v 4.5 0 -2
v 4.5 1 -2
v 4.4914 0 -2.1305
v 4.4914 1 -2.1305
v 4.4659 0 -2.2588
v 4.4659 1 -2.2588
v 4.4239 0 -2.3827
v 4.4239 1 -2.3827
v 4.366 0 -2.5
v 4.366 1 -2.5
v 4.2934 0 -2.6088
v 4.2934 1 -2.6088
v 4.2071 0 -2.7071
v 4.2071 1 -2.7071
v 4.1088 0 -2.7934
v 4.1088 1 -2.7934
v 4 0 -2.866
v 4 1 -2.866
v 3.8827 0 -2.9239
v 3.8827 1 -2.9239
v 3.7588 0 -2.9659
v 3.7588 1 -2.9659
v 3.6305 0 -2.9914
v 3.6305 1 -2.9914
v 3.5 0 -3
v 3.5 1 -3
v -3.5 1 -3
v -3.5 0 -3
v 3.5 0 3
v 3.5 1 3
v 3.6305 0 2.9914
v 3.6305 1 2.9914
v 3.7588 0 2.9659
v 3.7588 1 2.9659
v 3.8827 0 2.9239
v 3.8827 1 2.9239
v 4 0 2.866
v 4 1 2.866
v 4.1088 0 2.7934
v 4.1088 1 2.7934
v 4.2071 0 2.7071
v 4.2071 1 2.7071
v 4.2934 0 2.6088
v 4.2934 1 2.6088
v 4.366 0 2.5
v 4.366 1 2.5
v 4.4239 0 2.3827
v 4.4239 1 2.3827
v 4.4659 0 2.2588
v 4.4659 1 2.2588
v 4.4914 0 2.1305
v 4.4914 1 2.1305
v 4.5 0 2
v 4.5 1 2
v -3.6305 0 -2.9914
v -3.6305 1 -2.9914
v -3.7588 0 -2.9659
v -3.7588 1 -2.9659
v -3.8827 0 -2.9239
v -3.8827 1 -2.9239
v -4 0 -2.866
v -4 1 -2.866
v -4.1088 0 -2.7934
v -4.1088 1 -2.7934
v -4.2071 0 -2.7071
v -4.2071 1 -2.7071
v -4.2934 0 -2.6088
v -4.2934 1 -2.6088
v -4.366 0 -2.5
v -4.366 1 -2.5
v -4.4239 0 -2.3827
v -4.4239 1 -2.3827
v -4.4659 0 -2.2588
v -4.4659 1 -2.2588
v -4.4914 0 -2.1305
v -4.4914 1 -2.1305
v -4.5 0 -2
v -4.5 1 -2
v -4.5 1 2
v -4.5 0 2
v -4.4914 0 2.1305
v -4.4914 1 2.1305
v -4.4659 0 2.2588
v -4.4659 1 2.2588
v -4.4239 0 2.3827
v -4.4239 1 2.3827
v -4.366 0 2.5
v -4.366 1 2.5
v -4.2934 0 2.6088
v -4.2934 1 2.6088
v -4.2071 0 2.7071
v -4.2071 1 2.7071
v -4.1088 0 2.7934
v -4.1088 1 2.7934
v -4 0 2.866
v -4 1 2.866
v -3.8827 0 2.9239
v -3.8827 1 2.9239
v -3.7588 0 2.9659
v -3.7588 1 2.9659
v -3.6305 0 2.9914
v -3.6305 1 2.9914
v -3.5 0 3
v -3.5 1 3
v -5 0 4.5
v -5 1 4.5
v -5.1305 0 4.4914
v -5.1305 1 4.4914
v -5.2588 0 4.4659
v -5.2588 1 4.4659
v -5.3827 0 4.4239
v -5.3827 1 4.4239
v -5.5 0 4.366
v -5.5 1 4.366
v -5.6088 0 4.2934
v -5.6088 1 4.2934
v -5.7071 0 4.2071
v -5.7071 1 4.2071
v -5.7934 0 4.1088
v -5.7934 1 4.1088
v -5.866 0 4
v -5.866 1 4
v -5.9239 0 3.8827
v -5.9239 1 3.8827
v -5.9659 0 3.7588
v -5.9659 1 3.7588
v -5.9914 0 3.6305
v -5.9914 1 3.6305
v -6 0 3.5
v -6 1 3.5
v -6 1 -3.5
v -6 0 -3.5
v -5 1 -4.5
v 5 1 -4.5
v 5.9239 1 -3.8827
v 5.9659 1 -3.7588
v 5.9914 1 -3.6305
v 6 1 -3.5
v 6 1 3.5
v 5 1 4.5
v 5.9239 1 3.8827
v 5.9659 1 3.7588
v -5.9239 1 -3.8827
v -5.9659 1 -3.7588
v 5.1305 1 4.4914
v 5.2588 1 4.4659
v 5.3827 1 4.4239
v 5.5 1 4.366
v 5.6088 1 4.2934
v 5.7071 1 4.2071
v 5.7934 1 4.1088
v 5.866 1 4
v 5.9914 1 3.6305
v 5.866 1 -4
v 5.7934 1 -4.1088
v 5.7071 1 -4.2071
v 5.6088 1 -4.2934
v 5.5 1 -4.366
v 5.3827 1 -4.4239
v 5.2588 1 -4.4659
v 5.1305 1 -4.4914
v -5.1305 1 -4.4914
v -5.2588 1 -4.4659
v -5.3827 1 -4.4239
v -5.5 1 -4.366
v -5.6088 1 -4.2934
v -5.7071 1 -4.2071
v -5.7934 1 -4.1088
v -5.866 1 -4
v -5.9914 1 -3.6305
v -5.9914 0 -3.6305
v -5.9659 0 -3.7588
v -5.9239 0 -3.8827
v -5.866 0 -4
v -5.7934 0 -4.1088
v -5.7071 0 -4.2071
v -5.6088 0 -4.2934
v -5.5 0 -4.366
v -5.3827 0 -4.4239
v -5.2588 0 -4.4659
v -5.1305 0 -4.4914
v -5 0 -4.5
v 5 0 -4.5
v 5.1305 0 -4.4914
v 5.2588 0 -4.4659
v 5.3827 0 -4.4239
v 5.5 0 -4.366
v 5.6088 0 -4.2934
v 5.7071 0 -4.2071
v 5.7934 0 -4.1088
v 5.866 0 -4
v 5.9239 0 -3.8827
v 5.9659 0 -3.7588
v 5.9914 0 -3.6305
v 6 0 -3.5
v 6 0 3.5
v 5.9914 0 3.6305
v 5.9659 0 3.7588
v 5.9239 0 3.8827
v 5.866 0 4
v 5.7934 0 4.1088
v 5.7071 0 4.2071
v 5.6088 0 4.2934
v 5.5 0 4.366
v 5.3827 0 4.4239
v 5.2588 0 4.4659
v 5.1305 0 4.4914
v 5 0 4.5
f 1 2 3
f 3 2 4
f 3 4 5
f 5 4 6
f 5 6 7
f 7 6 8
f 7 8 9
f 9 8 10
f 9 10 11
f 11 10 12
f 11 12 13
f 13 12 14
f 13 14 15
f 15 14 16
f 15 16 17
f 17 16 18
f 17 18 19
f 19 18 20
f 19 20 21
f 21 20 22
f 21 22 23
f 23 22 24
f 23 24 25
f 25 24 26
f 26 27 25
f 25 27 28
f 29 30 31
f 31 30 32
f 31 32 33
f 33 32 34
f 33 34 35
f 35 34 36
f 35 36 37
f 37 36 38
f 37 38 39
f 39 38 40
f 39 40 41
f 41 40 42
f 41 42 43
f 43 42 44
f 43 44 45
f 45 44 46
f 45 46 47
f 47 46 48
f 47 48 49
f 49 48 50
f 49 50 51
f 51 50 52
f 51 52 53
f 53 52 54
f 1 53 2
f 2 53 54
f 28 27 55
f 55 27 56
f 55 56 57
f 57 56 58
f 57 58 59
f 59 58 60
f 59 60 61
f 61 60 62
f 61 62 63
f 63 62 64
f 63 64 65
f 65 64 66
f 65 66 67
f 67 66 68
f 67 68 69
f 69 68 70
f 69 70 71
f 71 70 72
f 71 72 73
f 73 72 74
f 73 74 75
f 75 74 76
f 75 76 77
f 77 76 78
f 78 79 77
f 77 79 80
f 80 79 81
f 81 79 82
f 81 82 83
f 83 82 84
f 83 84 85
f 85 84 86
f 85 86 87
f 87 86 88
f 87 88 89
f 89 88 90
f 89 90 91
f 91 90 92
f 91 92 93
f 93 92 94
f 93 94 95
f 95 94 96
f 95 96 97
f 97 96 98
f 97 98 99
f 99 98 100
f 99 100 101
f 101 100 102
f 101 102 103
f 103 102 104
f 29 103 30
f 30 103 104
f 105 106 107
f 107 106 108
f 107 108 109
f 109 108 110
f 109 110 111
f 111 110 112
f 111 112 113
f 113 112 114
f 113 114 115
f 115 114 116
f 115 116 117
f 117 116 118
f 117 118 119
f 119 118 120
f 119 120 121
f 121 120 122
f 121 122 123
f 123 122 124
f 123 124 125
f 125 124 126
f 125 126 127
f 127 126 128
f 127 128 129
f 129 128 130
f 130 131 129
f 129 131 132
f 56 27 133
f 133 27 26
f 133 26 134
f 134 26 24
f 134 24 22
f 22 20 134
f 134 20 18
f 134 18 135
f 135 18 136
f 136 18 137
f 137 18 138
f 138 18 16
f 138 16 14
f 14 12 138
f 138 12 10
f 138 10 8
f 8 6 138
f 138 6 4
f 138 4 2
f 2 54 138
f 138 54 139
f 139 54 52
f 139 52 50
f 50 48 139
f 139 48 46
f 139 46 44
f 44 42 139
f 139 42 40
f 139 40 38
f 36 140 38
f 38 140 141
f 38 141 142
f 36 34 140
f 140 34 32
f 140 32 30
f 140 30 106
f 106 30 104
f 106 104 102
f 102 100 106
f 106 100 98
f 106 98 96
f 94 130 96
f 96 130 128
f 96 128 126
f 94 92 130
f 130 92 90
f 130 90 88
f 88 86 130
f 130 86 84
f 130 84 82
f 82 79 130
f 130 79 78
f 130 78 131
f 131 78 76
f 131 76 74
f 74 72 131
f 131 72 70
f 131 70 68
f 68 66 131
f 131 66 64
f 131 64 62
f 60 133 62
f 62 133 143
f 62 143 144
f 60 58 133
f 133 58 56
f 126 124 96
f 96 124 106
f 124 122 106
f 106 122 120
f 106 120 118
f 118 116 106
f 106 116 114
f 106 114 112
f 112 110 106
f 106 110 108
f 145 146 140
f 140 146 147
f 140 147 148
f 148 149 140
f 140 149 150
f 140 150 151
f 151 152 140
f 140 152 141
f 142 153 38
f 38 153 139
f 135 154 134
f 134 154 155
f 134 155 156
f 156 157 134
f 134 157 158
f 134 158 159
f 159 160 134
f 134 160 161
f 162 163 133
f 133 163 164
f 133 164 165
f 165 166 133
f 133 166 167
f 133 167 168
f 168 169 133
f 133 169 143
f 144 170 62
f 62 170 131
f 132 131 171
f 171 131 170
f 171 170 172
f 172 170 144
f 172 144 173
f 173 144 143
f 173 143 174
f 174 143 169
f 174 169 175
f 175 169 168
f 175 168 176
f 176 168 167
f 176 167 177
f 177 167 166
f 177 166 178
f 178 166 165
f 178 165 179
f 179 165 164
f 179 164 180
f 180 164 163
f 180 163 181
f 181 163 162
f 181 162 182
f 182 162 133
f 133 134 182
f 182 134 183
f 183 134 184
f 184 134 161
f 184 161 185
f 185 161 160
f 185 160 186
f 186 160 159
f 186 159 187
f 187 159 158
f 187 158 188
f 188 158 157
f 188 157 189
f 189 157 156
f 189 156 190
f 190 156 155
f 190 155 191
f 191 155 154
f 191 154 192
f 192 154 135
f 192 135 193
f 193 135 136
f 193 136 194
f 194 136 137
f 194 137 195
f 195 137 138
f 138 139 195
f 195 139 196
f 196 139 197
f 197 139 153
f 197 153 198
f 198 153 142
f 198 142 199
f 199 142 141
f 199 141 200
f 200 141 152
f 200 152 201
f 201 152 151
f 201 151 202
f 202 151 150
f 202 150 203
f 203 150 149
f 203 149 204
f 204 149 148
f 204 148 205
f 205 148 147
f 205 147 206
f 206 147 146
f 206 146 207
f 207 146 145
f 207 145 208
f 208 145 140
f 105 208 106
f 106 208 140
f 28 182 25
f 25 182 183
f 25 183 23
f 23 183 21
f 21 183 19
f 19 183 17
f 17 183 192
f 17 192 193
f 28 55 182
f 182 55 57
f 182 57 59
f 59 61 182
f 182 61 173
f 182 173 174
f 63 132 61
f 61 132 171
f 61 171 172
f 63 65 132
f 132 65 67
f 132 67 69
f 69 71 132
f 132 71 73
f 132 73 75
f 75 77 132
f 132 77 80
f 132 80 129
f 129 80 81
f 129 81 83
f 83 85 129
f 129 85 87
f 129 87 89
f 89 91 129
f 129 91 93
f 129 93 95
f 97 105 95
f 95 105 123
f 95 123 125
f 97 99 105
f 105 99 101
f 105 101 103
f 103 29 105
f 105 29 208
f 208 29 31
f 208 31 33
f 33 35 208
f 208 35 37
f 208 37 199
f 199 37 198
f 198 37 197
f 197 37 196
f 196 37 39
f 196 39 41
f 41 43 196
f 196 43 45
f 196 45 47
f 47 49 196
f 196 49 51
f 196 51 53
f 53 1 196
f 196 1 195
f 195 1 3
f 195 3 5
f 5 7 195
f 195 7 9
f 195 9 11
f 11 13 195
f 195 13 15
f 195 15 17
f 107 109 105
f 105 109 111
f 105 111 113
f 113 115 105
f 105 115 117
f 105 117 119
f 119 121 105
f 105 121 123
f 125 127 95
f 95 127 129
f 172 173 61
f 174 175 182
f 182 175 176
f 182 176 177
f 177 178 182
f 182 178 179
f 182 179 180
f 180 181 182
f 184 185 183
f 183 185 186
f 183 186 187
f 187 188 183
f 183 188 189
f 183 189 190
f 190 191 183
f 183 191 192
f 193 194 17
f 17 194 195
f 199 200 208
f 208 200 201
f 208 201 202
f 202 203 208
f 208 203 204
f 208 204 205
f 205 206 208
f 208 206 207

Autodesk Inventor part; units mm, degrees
ref_plane "YZ Plane" through (0, 0, 0) normal (1, 0, 0) x (0, 1, 0)
ref_plane "XZ Plane" through (0, 0, 0) normal (0, 1, 0) x (-1, 0, 0)
ref_plane "XY Plane" through (0, 0, 0) normal (0, 0, 1) x (1, 0, 0)
sketch "Sketch1" plane through (0, 0, 0) normal (0, 1, 0) x (-1, 0, 0)
  line L0 (6, 4.5) -> (-6, 4.5)
  line L1 (-6, 4.5) -> (-6, -4.5)
  line L2 (-6, -4.5) -> (6, -4.5)
  line L3 (6, -4.5) -> (6, 4.5)
  line L4 (6, 4.5) -> (-6, -4.5) construction
  line L5 (-6, 4.5) -> (6, -4.5) construction
  point P0 (0, 0)
  dimension "d4" = 12
  dimension "d5" = 9
extrude "Extrusion1" add sketch "Sketch1" along normal blind 1
sketch "Sketch2" plane through (0, 1, 0) normal (0, 1, 0) x (1, 0, 0)
  point P0 (0, 0)
fillet "Fillet1" radius 1 4 edges at (6, 0.5, 4.5) (6, 0.5, -4.5) (-6, 0.5, -4.5) (-6, 0.5, 4.5)
sketch "Sketch3" plane through (0, 1, 0) normal (0, 1, 0) x (1, 0, 0)
  arc A0 (-6, -3.5) -> (-5, -4.5) centre (-5, -3.5) ccw projected
  line L0 (-5, -4.5) -> (5, -4.5) projected
  arc A1 (5, -4.5) -> (6, -3.5) centre (5, -3.5) ccw projected
  line L1 (6, -3.5) -> (6, 3.5) projected
  arc A2 (6, 3.5) -> (5, 4.5) centre (5, 3.5) ccw projected
  line L2 (5, 4.5) -> (-5, 4.5) projected
  arc A3 (-5, 4.5) -> (-6, 3.5) centre (-5, 3.5) ccw projected
  line L3 (-6, 3.5) -> (-6, -3.5) projected
  line L4 (-4.5, -3) -> (4.5, -3)
  line L5 (4.5, -3) -> (4.5, 3)
  line L6 (4.5, 3) -> (-4.5, 3)
  line L7 (-4.5, 3) -> (-4.5, -3)
  point P0 (0, 0)
  dimension "d7" = 1.5
extrude "Extrusion2" cut sketch "Sketch3" against normal up to next contours L7 L6 L5 L4
fillet "Fillet2" radius 1 4 edges at (-4.5, 0.5, 3) (-4.5, 0.5, -3) (4.5, 0.5, 3) (4.5, 0.5, -3)
properties part number "Spacer_3DPrint"
